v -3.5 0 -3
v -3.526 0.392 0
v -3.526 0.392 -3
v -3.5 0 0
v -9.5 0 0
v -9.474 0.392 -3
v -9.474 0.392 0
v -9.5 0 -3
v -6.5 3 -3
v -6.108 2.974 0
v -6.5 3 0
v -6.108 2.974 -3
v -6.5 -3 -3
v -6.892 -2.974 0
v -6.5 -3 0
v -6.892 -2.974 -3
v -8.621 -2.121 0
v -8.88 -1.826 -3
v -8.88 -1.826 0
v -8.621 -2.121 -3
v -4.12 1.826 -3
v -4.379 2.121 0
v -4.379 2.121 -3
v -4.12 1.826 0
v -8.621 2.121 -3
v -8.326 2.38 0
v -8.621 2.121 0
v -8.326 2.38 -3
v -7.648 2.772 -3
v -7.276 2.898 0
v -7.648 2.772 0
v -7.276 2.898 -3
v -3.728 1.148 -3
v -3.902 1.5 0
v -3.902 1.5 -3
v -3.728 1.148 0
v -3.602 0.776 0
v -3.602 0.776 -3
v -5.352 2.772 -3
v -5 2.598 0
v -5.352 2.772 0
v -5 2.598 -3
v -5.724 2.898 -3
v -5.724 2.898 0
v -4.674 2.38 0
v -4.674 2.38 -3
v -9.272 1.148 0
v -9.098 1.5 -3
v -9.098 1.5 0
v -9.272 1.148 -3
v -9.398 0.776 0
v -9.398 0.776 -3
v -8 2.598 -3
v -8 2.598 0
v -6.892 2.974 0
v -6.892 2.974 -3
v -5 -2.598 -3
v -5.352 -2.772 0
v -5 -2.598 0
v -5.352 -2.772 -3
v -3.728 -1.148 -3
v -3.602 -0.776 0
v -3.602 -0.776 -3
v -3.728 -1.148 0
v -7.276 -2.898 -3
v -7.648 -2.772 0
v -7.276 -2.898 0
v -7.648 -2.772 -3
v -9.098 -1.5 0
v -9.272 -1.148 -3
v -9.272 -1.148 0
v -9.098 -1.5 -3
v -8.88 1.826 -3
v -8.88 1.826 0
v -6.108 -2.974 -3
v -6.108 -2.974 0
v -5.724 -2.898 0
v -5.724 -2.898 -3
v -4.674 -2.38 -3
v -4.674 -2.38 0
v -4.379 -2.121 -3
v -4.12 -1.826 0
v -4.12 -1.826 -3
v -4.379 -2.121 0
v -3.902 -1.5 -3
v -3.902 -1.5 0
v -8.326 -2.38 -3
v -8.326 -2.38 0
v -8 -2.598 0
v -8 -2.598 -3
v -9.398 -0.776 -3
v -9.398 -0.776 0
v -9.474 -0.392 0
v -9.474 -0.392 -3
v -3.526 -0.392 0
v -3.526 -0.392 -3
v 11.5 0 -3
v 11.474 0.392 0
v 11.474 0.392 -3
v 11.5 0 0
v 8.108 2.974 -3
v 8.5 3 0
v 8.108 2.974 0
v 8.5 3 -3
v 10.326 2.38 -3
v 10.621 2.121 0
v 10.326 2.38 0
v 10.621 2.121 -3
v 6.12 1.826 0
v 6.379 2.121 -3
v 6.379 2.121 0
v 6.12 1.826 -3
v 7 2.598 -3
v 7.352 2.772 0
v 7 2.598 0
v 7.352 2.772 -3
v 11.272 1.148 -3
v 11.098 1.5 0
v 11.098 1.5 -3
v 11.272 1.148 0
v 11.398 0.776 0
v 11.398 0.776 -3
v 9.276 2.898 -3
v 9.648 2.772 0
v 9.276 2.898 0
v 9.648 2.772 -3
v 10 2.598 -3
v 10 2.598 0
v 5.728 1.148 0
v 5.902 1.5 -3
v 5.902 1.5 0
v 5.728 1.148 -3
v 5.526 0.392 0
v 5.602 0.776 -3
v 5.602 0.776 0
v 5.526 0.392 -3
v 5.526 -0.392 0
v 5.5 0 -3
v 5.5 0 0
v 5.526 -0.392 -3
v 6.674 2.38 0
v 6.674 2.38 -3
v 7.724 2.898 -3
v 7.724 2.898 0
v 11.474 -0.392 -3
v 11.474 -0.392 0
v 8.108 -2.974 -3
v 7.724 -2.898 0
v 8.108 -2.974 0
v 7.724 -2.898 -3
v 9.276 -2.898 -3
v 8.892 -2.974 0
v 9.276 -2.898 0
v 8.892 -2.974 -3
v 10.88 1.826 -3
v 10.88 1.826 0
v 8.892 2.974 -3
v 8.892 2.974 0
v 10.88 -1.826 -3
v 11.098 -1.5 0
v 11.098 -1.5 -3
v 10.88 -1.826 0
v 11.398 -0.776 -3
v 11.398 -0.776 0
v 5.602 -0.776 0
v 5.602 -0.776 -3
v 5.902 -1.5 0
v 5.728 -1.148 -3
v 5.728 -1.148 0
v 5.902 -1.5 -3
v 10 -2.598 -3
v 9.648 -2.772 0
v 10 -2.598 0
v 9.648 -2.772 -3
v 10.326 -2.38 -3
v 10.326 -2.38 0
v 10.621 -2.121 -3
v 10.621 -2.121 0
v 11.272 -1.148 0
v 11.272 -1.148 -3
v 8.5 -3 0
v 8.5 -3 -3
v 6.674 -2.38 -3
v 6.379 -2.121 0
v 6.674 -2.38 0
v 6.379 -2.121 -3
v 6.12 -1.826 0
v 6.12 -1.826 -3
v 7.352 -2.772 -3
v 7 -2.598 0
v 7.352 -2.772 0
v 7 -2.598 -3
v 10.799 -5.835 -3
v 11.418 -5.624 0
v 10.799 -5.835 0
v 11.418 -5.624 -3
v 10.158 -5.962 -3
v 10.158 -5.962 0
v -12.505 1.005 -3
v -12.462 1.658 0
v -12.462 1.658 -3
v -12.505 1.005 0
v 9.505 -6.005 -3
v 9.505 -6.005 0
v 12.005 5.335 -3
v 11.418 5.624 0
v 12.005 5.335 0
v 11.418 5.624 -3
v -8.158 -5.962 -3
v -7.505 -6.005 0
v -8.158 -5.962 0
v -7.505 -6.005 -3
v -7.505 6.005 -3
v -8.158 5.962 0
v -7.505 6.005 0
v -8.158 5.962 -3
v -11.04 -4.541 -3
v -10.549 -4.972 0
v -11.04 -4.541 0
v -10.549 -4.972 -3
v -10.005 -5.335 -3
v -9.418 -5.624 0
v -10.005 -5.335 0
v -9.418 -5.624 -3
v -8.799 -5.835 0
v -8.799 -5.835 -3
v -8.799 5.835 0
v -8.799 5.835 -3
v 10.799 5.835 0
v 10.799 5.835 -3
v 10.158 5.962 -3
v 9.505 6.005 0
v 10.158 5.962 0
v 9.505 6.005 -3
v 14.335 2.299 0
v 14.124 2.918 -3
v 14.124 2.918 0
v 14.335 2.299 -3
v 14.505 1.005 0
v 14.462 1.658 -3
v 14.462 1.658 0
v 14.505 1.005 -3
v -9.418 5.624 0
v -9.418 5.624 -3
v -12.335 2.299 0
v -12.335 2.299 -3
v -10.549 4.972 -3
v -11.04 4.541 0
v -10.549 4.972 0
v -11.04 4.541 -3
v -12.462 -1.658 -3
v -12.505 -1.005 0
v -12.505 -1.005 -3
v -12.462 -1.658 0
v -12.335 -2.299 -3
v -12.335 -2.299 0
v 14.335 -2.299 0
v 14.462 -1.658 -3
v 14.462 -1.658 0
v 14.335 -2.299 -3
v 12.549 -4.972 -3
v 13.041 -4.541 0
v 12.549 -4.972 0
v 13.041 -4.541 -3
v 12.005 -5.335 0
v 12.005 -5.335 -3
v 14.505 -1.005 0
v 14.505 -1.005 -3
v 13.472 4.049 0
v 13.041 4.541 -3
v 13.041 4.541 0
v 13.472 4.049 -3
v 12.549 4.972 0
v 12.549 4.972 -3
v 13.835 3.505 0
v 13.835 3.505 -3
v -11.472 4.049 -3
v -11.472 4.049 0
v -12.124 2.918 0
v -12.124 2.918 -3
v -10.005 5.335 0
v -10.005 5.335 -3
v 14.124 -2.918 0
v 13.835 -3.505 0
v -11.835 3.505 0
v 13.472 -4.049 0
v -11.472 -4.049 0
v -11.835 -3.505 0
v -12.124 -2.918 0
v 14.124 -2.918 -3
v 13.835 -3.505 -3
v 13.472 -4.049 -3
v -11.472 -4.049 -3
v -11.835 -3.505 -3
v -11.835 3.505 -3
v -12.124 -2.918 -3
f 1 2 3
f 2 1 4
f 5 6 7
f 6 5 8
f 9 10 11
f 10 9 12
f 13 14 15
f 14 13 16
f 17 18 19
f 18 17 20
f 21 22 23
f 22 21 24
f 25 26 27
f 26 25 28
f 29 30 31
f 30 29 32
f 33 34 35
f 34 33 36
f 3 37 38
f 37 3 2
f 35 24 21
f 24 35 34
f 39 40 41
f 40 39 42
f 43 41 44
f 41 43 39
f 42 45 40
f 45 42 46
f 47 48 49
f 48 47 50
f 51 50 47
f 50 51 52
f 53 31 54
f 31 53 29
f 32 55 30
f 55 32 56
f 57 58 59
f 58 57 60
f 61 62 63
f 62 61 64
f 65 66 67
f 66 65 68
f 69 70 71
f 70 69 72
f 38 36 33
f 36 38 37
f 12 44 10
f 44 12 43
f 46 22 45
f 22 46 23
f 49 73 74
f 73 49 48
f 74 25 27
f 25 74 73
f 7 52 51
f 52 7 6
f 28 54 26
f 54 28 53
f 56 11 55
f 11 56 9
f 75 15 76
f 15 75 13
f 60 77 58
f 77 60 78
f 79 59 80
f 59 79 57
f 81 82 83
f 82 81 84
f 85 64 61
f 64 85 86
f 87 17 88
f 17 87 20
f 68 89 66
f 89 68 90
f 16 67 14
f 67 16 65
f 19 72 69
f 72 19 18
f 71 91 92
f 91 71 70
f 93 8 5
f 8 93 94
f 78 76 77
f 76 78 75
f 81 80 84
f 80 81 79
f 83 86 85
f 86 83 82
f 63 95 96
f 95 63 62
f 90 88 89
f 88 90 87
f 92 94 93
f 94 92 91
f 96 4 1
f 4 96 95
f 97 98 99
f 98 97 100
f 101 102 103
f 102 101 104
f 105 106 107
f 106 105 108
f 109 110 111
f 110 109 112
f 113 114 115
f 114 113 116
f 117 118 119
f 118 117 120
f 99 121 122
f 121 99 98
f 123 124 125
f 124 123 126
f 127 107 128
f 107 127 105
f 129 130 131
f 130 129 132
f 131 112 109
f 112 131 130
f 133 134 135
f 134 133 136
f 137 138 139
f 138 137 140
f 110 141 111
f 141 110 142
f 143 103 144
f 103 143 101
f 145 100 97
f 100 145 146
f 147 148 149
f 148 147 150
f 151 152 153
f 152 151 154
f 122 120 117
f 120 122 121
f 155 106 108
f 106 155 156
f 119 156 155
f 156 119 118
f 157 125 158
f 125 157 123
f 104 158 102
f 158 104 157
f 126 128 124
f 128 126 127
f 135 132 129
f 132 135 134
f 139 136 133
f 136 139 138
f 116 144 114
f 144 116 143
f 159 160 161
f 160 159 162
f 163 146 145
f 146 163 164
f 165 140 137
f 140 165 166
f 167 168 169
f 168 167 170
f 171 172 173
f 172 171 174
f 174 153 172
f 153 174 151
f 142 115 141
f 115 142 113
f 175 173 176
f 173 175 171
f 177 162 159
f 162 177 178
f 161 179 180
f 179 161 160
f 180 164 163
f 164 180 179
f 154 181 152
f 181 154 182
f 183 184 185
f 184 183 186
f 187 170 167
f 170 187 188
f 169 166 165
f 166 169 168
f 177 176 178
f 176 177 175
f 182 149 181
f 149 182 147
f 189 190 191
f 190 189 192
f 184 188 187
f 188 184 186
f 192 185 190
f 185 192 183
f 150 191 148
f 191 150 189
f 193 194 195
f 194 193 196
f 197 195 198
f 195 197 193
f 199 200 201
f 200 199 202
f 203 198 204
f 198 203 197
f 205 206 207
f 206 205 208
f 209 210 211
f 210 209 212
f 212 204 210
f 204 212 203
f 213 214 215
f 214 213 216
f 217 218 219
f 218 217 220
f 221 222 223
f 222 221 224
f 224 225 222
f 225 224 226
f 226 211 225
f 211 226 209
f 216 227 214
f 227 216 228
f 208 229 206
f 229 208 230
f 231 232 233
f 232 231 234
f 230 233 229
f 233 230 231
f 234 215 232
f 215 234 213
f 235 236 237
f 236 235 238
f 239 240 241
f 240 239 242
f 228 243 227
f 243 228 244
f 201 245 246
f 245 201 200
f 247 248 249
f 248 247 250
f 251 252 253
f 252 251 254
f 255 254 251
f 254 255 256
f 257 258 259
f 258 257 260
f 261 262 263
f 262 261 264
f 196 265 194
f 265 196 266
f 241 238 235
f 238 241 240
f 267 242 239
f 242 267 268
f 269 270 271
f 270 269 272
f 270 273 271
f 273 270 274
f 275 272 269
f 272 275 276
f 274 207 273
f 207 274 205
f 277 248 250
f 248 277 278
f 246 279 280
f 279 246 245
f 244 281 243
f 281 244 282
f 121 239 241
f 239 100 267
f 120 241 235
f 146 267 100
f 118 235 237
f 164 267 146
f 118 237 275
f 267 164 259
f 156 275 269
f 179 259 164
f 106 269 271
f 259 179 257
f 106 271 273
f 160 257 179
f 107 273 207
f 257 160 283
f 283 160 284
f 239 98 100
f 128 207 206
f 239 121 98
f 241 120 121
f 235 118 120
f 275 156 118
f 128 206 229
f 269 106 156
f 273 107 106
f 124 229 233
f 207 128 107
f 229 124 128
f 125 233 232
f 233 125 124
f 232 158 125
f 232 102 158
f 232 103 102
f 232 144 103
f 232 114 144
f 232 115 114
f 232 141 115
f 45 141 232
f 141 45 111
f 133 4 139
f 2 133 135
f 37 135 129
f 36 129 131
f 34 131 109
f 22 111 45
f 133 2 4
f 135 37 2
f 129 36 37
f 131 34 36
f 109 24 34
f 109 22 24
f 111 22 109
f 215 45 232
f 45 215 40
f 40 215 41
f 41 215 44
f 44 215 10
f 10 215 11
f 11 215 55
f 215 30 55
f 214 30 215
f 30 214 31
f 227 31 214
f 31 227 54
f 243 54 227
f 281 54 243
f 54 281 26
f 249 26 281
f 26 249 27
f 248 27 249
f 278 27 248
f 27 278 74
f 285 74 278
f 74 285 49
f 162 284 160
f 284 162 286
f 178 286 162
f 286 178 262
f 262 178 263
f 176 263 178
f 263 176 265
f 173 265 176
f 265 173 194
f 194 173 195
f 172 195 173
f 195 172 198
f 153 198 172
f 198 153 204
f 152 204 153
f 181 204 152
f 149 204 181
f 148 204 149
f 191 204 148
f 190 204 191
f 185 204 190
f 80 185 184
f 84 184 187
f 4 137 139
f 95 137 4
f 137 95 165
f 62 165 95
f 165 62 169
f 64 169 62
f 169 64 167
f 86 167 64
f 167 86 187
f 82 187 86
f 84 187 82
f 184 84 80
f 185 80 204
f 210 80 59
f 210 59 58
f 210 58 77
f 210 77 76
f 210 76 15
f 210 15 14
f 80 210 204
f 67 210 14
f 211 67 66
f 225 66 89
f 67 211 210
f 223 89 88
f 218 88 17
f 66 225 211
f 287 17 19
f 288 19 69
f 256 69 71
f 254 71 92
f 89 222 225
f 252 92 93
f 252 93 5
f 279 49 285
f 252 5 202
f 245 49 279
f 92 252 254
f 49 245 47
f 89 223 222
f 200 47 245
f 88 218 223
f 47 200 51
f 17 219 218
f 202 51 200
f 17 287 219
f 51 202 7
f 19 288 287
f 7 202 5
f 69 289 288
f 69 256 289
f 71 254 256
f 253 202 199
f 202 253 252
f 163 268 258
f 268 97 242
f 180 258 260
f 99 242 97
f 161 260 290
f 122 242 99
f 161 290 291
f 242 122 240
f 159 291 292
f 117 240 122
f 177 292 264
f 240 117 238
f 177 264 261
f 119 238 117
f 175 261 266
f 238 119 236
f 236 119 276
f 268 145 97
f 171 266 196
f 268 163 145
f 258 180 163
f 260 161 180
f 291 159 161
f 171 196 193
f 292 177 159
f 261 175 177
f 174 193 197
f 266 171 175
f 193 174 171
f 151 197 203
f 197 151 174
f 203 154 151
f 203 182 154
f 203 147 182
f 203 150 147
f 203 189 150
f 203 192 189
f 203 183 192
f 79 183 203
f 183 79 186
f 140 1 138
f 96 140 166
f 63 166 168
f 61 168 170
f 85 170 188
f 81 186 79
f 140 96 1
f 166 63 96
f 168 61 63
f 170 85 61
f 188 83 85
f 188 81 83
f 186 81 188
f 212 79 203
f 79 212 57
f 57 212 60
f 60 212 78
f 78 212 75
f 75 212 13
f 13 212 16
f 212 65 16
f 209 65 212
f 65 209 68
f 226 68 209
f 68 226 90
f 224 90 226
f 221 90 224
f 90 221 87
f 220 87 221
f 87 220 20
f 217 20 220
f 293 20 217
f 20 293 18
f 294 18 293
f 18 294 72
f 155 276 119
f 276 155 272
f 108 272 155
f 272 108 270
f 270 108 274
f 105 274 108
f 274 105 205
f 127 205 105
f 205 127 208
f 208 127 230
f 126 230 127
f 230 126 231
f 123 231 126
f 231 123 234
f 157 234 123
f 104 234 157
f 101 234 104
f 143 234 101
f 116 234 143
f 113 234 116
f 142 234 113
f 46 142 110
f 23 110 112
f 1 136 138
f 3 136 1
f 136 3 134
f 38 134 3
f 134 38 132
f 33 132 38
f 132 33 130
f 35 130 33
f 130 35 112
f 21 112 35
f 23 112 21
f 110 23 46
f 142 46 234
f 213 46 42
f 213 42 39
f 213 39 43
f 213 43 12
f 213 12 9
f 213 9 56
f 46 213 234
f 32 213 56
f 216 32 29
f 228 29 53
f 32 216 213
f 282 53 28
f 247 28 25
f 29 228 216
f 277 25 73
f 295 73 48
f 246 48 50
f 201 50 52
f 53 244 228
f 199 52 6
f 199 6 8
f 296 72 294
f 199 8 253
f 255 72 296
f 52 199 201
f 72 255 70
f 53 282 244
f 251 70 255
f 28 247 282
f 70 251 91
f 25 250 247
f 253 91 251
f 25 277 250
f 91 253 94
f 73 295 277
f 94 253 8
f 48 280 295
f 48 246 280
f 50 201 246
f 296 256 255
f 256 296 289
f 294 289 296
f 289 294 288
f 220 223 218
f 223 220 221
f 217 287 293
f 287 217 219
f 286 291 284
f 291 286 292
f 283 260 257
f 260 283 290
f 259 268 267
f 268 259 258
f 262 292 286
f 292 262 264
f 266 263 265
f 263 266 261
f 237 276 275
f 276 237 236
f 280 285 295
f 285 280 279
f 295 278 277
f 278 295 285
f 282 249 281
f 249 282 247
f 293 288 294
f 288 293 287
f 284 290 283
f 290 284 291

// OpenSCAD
// Generated by SolidPython 1.1.3 on 2022-09-15 16:37:09
$fn = 48;


difference() {
	union() {
		translate(v = [1, 0, 0]) {
			difference() {
				union() {
					color(alpha = 1.0000000000, c = "Gold") {
						translate(v = [0, 0, 0]) {
							rotate(a = [0, 0, 0]) {
								translate(v = [0, 0, -3]) {
									linear_extrude(height = 3) {
										offset(r = 5) {
											square(center = true, size = [17.0100000000, 2.0100000000]);
										}
									}
								}
							}
						}
					}
				}
				union() {
					color(alpha = 1.0000000000, c = "Gold") {
						translate(v = [-7.5000000000, 0.0000000000, 0]) {
							rotate(a = [0, 0, 0]) {
								translate(v = [0, 0, -250]) {
									cylinder(h = 500, r = 3.0000000000);
								}
							}
						}
					}
					color(alpha = 1.0000000000, c = "Gold") {
						translate(v = [7.5000000000, 0.0000000000, 0]) {
							rotate(a = [0, 0, 0]) {
								translate(v = [0, 0, -250]) {
									cylinder(h = 500, r = 3.0000000000);
								}
							}
						}
					}
				}
			}
		}
	}
	union();
}
/***********************************************
*********      SolidPython code:      **********
************************************************
 
import subprocess

from solid.objects import *
from solid import scad_render_to_file, scad_render

import math

import os

##################################################################################################################################################
##################################################################################################################################################
##################################################################################################################################################
##################################################################################################################################################
######  DIMENSION STUFF
##################################################################################################################################################
##################################################################################################################################################
##################################################################################################################################################
##################################################################################################################################################


mode = "3DPR"
#mode = "LAZE"
#mode = "TURE"
#mode = ""


######  Countersunk
countersunkM = []
WIDTH = 0
DEPTH = 1
countersunkM1width = 0; countersunkM1depth = 0; countersunkM2width = 0; countersunkM2depth = 0
countersunkM3width = 0
countersunkM3depth = 0
countersunkM4width = 0
countersunkM4depth = 0
countersunkM5width = 0
countersunkM5depth = 0
countersunkM6width = 0
countersunkM6depth = 0

######  Holes
holeM = []
holeM1 = 0
holeM2 = 0
holeM3 = 0
holeM4 = 0
holeM5 = 0
holeM6 = 0

######  Nuts
nutM = []
NUTWIDTH = 0
NUTDEPTH = 1
nutM1width = 0
nutM1depth = 0
nutM2width = 0
nutM2depth = 0
nutM3width = 0
nutM3depth = 0
nutM4width = 0
nutM4depth = 0
nutM5width = 0
nutM5depth = 0
nutM6width = 0
nutM6depth = 0

######  OOEB
ooebPinWidth = 0
ooebPinWidthWide = 0


######  Colors
colDefault = "Gold"

colOOEBbase = colDefault

colLEDRed = "red"
colWire = "gray"
    ######  Resistor
colRes = list()
colResistor = "beige"

colResBlack = "black"
colRes.append(colResBlack)
colResBrown = "brown"
colRes.append(colResBrown)
colResRed = "red"
colRes.append(colResRed)
colResOrange = "orange"
colRes.append(colResOrange)
colResYellow = "yellow"
colRes.append(colResYellow)
colResGreen = "green"
colRes.append(colResGreen)
colResBlue = "blue"
colRes.append(colResBlue)
colResPurple = "purple"
colRes.append(colResPurple)
colResGray = "gray"
colRes.append(colResGray)
colResWhite = "white"
colRes.append(colResWhite)





def changeMode(m="3DPR"):
    #print("####################################################      CHANGING MODES TO: " + m)
    global mode
    mode = m
    ######  Countersunk
    global countersunkM, countersunkM1width, countersunkM1depth, countersunkM2width, countersunkM2depth, countersunkM3width, countersunkM3depth, countersunkM4width, countersunkM4depth, countersunkM5width, countersunkM5depth, countersunkM6width, countersunkM6depth
    countersunkM = []
    countersunkM.append([0,0])
    countersunkM1width = 0 if mode== "3DPR" else 0
    countersunkM1depth = 0 if mode== "3DPR" else 0
    countersunkM.append([countersunkM1width,countersunkM1depth])
    countersunkM2width = 0 if mode== "3DPR" else 0
    countersunkM2depth = 0 if mode== "3DPR" else 0
    countersunkM.append([countersunkM2width,countersunkM2depth])
    countersunkM3width = 5.5/2+0.6 if mode== "3DPR" else 5.5/2
    countersunkM3depth = 1.7 if mode== "3DPR" else 1.7
    countersunkM.append([countersunkM3width,countersunkM3depth])
    countersunkM4width = 0 if mode== "3DPR" else 0
    countersunkM4depth = 0 if mode== "3DPR" else 0
    countersunkM.append([countersunkM4width,countersunkM4depth])
    countersunkM5width = 0 if mode== "3DPR" else 0
    countersunkM5depth = 0 if mode== "3DPR" else 0
    countersunkM.append([countersunkM5width,countersunkM5depth])
    countersunkM6width = 0 if mode== "3DPR" else 0
    countersunkM6depth = 0 if mode== "3DPR" else 0
    countersunkM.append([countersunkM6width,countersunkM6depth])
    ######  Holes
    global holeM, holeM1, holeM2, holeM3, holeM4, holeM5, holeM6, holeM7, holeM8
    holeM = []
    holeM1 = 1.2/2 if mode== "3DPR" else 1/2
    holeM2 = 2.3/2 if mode== "3DPR" else 2/2
    holeM3 = 3.4/2 if mode== "3DPR" else 3/2
    holeM4 = 4.4/2 if mode== "3DPR" else 4/2
    holeM5 = 5.4/2 if mode== "3DPR" else 5/2
    holeM6 = 6.5/2 if mode== "3DPR" else 6/2
    holeM7 = 7.5/2 if mode== "3DPR" else 7/2
    holeM8 = 8.6/2 if mode== "3DPR" else 8/2
    holeM.append(0)
    holeM.append(holeM1)
    holeM.append(holeM2)
    holeM.append(holeM3)
    holeM.append(holeM4)
    holeM.append(holeM5)
    holeM.append(holeM6)
    holeM.append(holeM7)
    holeM.append(holeM8)
    #####  Nuts
    global nutM, nutM1width, nutM1depth, nutM2width, nutM2depth, nutM3width, nutM3depth, nutM4width, nutM4depth, nutM5width, nutM5depth, nutM6width, nutM6depth
    nutM = []
    nutM.append([0,0]) 
    #M1 Nut
    nutM1width = 0
    nutM1depth = 0
    nutM.append([nutM1width,nutM1depth])    
    #M2 Nut
    nutM2width = 0
    nutM2depth = 0
    nutM.append([nutM2width,nutM2depth])    
    #M3 Nut
    #nutM3width = 6.05 if mode== "3DPR" else 5.5
    nutM3width = 6.05 * 1.154 if mode== "3DPR" else 5.5 * 1.154
    nutM3depth = 2.5 if mode== "3DPR" else 2.5
    nutM.append([nutM3width,nutM3depth])    
    #M4 Nut
    nutM4width = 0
    nutM4depth = 0
    nutM.append([nutM4width,nutM4depth])    
    #M5 Nut
    nutM5width = 0
    nutM5depth = 0
    nutM.append([nutM5width,nutM5depth])    
    #M6 Nut
    nutM6width = 11 if mode== "3DPR" else 10
    nutM6depth = 5 if mode== "3DPR" else 5
    nutM.append([nutM6width,nutM6depth])    

    ######  OOEB
    global ooebPinWidth,  ooebPinWidthWide

    ooebPinWidth = 0.6
    if(mode=="3DPR" or mode=="LAZE"):
        ooebPinWidth = 0.6 + 0.6
    ooebPinWidthWide = 1.2
    if(mode=="3DPR" or mode=="LAZE"):
        ooebPinWidthWide = 1.2 + 0.6


changeMode()


""""    
holeM12D = s=="3DPR" ? 1.4/2 : 1.2/2;
holeM16D = s=="3DPR" ? 1.8/2 : 1.6/2;
holeM2 = s=="3DPR" ? 2.3/2 : 2/2;
holeM25D = s=="3DPR" ? 2.8/2 : 2.5/2;
holeM27D = s=="3DPR" ? 3.1/2 : 2.7/2;    
holeM3 = s=="3DPR" ? 3.4/2 : 3/2;
holeM35D = s=="3DPR" ? 3.9/2 : 35/2;
holeM4 = s=="3DPR" ? 4.4/2 : 4/2;
holeM5 = s=="3DPR" ? 5.4/2 : 5/2;
holeM6 = s=="3DPR" ? 6.5/2 : 6/2;
holeM6Minus = s=="3DPR" ? 5.8/2 : 5.9/2;
holeM7 = s=="3DPR" ? 7.5/2 : 7/2;
holeM8 = s=="3DPR" ? 8.6/2 : 8/2;
holeM9 = s=="3DPR" ? 9.6/2 : 9/2;
holeM10 = s=="3DPR" ? 10.6/2 : 10/2;
holeM11 = s=="3DPR" ? 11.6/2 : 11/2;
holeM12 = s=="3DPR" ? 12.6/2 : 12/2;
holeM13 = s=="3DPR" ? 13.6/2 : 13/2;
holeM14 = s=="3DPR" ? 14.6/2 : 14/2;
holeM15 = s=="3DPR" ? 15.6/2 : 15/2;
holeM16 = s=="3DPR" ? 16.6/2 : 16/2;
holeM17 = s=="3DPR" ? 17.6/2 : 17/2;
holeM18 = s=="3DPR" ? 18.6/2 : 18/2;
holeM19 = s=="3DPR" ? 19.6/2 : 19/2;
holeM20 = s=="3DPR" ? 20.6/2 : 20/2;
"""

##################################################################################################################################################
##################################################################################################################################################
##################################################################################################################################################
##################################################################################################################################################
######  REGULAR STUFF
##################################################################################################################################################
##################################################################################################################################################
##################################################################################################################################################
##################################################################################################################################################


def setMode(mode="3DPR"):
    changeMode(mode)

def getMode():
    return mode



def saveToScad(fileName, parts):
    dir =  os.path.dirname(os.path.abspath(fileName))
    Path(dir).mkdir(parents=True, exist_ok=True)
    file_out = scad_render_to_file(parts, fileName, file_header=f'$fn = 48;')


def saveToDxf(fileIn, fileOut=""):
    if fileOut == "":
        fileOut = fileIn.replace(".scad",".dxf")
    saveToFile(fileIn, fileOut)
    
def saveToPng(fileIn, fileOut="",extra="--render"):
    if fileOut == "":
        fileOut = fileIn.replace(".scad",".png")
    saveToFile(fileIn, fileOut)

def saveToStl(fileIn, fileOut=""):
    if fileOut == "":
        fileOut = fileIn.replace(".scad",".stl")
    saveToFile(fileIn, fileOut)
    
def saveToSvg(fileIn, fileOut=""):
    if fileOut == "":
        fileOut = fileIn.replace(".scad",".svg")
    saveToFile(fileIn, fileOut)

def saveToFile(fileIn, fileOut,extra=""):
    extra = extra + " --colorscheme Tomorrow"

    launchStr = 'openscad -o "' + fileOut + '"' + extra + ' "' + fileIn + '"'
    if ".png" in fileOut:
        launchStr = launchStr + " --render"
    print("            saveToFile launch string: " + launchStr)
    subprocess.run(launchStr)
    x=0



def insert(item,pos=[None,None,None],x=0,y=0,z=0,ex=0,size=[None,None,None],length=0,rot=[None,None,None],rotX=0,rotY=0,rotZ=0,width=0,height=0,depth=100,rad=0,rad2=0,color=colDefault,alpha=1,OOwidth=0,OOheight=0,holes=True,negative=True, name="",m=""):
    return OPSCInsert(item,pos,x,y,z,ex,size,length,rot,rotX,rotY,rotZ,width,height,depth,rad,rad2,color,alpha,OOwidth,OOheight,holes,negative,name,m=m)


def OPSCInsert(item,pos=[None,None,None],x=0,y=0,z=0,ex=0,size=[None,None,None],length=0,rot=[None,None,None],rotX=0,rotY=0,rotZ=0,width=0,height=0,depth=100,rad=0,rad2=0,col=colDefault,alpha=1,OOwidth=0,OOheight=0,holes=True,negative=True, name="",m=""):
    
    """
        color(color,alpha){
            translate([x,y,z]){
                    rotate([rotX,rotY,rotZ]){
    """
    returnValue = ""

    #print(pos)

    if pos[0] != None:
        x=pos[0]
        y=pos[1]
        z=pos[2]
    if rot[0] != None:
        rotX=rot[0]
        rotY=rot[1]
        rotZ=rot[2]
    
    returnValue = color(col)(translate((x,y,z))(
                            rotate((rotX,rotY,rotZ))(
                                OPSCInsertIf(item,pos,x,y,z,ex,size,length,rot,rotX,rotY,rotZ,width,height,depth,rad,rad2,col,alpha,OOwidth,OOheight,holes,negative,name,m=m)
                            )
                        ))
                
    

    return returnValue

def OPSCInsertIf(item,pos=[None,None,None],x=0,y=0,z=0,ex=0,size=[None,None,None],length=0,rot=[None,None,None],rotX=0,rotY=0,rotZ=0,width=0,height=0,depth=100,rad=0,rad2=0,color=colDefault,alpha=1,OOwidth=0,OOheight=0,holes=True,negative=True, name="",m=""):
    returnValue = cube([10,10,10])

    if size[0] != None:
        width=size[0]
        height=size[1]
        depth=size[2]

    #print("    OPSCInsert item:" + str(item) + " at:[" + str(x) + "," + str(y) + "," + str(z) + "] size: [" + str(width) + "," + str(height) + "," + str(depth) + "]")

    if(item=="cube"):
        returnValue =  translate([0,0,-depth/2])(cube([width,height,depth],center=True).set_modifier(m))
    elif(item=="cylinder"):        
        returnValue = translate([0,0,-depth/2])(cylinder(r=rad,h=depth,center=True).set_modifier(m))
    elif(item=="sphere"):        
        returnValue = translate([0,0,-rad])(sphere(r=rad).set_modifier(m))
    elif(item=="plane"):
        if depth == 100:
            returnValue = insert("cube",size=[1000,1000,0.1],color=color).set_modifier(m)            
        else:
            returnValue = insert("cube",size=[1000,1000,depth],color=color).set_modifier(m)                        
    elif(item=="cubeRounded"):
        if(rad == 0):
                            rad = 5
        returnValue =  translate([0,0,-depth])(
                        linear_extrude(height=depth)(                        
                            offset(r=rad)(
                                square((width-rad*2+.01,height-rad*2+.01),center=True).set_modifier(m)
                                )
                            )
        )
    ######  Countersunk
    elif(item == "countersunkM1" or item == "csM1" ):
        returnValue = OSPCgetCountersunk(rad=1,m=m)
    elif(item == "countersunkM2" or item == "csM2" ):
        returnValue = OSPCgetCountersunk(rad=2,m=m)
    elif(item == "countersunkM3" or item == "csM3" ):
        returnValue = OSPCgetCountersunk(rad=3,m=m)
    elif(item == "countersunkM4" or item == "csM4" ):
        returnValue = OSPCgetCountersunk(rad=4,m=m)
    elif(item == "countersunkM5" or item == "csM5" ):
        returnValue = OSPCgetCountersunk(rad=5,m=m)
    elif(item == "countersunkM6" or item == "csM6" ):
        returnValue = OSPCgetCountersunk(rad=6,m=m)
    elif(item == "countersunk" or item == "cs"):
        returnValue = OSPCgetCountersunk(rad=rad,m=m)


    ######  Holes    
    elif(item == "holeM1"):
        returnValue = OSPCgetHole(rad=1,m=m)
    elif(item == "holeM2"):
        returnValue = OSPCgetHole(rad=2,m=m)
    elif(item == "holeM3"):
        returnValue = OSPCgetHole(rad=3,m=m)
    elif(item == "holeM4"):
        returnValue = OSPCgetHole(rad=4,m=m)
    elif(item == "holeM5"):
        returnValue = OSPCgetHole(rad=5,m=m)
    elif(item == "holeM6"):
        returnValue = OSPCgetHole(rad=6,m=m)
    elif(item == "holeM7"):
        returnValue = OSPCgetHole(rad=7,m=m)
    elif(item == "holeM8"):
        returnValue = OSPCgetHole(rad=8,m=m)
    elif(item == "hole"):
        returnValue = OSPCgetHole(rad=rad,m=m)

    ######  Nuts
    elif(item == "nutM1"):
        returnValue = OSPCgetNut(rad=1,depth=depth,m=m)
    elif(item == "nutM2"):
        returnValue = OSPCgetNut(rad=2,depth=depth,m=m)
    elif(item == "nutM3"):
        returnValue = OSPCgetNut(rad=3,depth=depth,m=m)
    elif(item == "nutM4"):
        returnValue = OSPCgetNut(rad=4,depth=depth,m=m)
    elif(item == "nutM5"):
        returnValue = OSPCgetNut(rad=5,depth=depth,m=m)
    elif(item == "nutM6"):
        returnValue = OSPCgetNut(rad=6,depth=depth,m=m)
    elif(item == "nut"):
        returnValue = OSPCgetNut(rad=rad,depth=depth,m=m)
    return returnValue

                

def OSPCgetHole(rad,m=""):
    return translate([0,0,-250])(cylinder(r=holeM[rad],h=500).set_modifier(m))

def OSPCgetNut(rad,depth,m=""):
    depth = nutM[rad][NUTDEPTH] if depth==100 else depth
    returnValue = OPSChexagon(nutM[rad][NUTWIDTH],depth=depth,m=m)
    return returnValue

def OSPCgetCountersunk(rad,m=""):
    depth=countersunkM[rad][DEPTH]
    returnValue = translate([0,0,-depth])(cylinder(h=depth,r2=countersunkM[rad][WIDTH],r1=holeM[rad])).set_modifier(m)
    return returnValue

def OPSChexagon(width,depth,m=""):
    angles = []
    for a in range(0,6):
        angles.append((a*360/6)+30)
    points = []
    for angle in angles:
        x = math.cos((math.pi/180)*angle)*(width/2)
        y = math.sin((math.pi/180)*angle)*(width/2)
        points.append([x,y])

        rv = polygon(points)
        rv = linear_extrude(height=depth)(rv)
        rv = translate([0,0,-depth])(rv)
        rv = rv.set_modifier(m)

    return rv

def OPSChexagonOld(width,depth,m=""):
    cutter = item()
    wid=width*2
    cutter.addPos(insert("cube",pos=[wid/2+width/2,0,0],size=[wid,wid,depth]))
    cutter.addPos(insert("cube",pos=[-wid/2-width/2,0,0],size=[wid,wid,depth]))

    cut = cutter.getPart()
    #print(depth)
    returnValue = difference()(
        translate([0,0,-depth/2])(cube([wid,wid,depth],center=True)),
        cut,
        rotate([0,0,60])(cut),
        rotate([0,0,-60])(cut)
    ).set_modifier(m)

    return returnValue

class item:

    def __init__(self):
        self.posItems=list()
        self.negItems=list()

    def isEmpty(self):        
        testString = scad_render(self.getPart())
        #print("test String length: " + str(len(testString)))
        returnValue = False
        if len(testString) == 270:            
            returnValue = True
        return returnValue

    def addPos(self,part):
        self.posItems.append(part)
    def addNeg(self,part):
        self.negItems.append(part)

    def getPart(self):
        returnValue = difference()(
            union()(self.posItems),
            union()(self.negItems)
        )
        return returnValue

    def getLaser(self,start=0,layers=1,thickness=-3,tileDif=200):
        rv= []

        for x in range(layers):
            rv.append(translate([0,x*tileDif,0])(
                    projection()(
                        intersection()(
                            insert("plane",z=start+x*thickness),
                            self.getPart()
                        )
                    )
            )
            )
        return union()(rv)

    def getSplit(self,start=0,depth=6,tileDif=200):
        rv= []

        rv.append(translate([0,0,0])(
            intersection()(
                insert("cube",size=[100,100,depth],z=start),
                self.getPart()
            )
        )
        )

        rv.append(translate([0,0,depth])(rotate([180,0,0])(translate([0,tileDif,depth])(
            intersection()(
                insert("cube",size=[100,100,depth],z=start-depth),
                self.getPart()
            )
        )
        )
        )
        )        
        return union()(rv)


 
 
************************************************/
